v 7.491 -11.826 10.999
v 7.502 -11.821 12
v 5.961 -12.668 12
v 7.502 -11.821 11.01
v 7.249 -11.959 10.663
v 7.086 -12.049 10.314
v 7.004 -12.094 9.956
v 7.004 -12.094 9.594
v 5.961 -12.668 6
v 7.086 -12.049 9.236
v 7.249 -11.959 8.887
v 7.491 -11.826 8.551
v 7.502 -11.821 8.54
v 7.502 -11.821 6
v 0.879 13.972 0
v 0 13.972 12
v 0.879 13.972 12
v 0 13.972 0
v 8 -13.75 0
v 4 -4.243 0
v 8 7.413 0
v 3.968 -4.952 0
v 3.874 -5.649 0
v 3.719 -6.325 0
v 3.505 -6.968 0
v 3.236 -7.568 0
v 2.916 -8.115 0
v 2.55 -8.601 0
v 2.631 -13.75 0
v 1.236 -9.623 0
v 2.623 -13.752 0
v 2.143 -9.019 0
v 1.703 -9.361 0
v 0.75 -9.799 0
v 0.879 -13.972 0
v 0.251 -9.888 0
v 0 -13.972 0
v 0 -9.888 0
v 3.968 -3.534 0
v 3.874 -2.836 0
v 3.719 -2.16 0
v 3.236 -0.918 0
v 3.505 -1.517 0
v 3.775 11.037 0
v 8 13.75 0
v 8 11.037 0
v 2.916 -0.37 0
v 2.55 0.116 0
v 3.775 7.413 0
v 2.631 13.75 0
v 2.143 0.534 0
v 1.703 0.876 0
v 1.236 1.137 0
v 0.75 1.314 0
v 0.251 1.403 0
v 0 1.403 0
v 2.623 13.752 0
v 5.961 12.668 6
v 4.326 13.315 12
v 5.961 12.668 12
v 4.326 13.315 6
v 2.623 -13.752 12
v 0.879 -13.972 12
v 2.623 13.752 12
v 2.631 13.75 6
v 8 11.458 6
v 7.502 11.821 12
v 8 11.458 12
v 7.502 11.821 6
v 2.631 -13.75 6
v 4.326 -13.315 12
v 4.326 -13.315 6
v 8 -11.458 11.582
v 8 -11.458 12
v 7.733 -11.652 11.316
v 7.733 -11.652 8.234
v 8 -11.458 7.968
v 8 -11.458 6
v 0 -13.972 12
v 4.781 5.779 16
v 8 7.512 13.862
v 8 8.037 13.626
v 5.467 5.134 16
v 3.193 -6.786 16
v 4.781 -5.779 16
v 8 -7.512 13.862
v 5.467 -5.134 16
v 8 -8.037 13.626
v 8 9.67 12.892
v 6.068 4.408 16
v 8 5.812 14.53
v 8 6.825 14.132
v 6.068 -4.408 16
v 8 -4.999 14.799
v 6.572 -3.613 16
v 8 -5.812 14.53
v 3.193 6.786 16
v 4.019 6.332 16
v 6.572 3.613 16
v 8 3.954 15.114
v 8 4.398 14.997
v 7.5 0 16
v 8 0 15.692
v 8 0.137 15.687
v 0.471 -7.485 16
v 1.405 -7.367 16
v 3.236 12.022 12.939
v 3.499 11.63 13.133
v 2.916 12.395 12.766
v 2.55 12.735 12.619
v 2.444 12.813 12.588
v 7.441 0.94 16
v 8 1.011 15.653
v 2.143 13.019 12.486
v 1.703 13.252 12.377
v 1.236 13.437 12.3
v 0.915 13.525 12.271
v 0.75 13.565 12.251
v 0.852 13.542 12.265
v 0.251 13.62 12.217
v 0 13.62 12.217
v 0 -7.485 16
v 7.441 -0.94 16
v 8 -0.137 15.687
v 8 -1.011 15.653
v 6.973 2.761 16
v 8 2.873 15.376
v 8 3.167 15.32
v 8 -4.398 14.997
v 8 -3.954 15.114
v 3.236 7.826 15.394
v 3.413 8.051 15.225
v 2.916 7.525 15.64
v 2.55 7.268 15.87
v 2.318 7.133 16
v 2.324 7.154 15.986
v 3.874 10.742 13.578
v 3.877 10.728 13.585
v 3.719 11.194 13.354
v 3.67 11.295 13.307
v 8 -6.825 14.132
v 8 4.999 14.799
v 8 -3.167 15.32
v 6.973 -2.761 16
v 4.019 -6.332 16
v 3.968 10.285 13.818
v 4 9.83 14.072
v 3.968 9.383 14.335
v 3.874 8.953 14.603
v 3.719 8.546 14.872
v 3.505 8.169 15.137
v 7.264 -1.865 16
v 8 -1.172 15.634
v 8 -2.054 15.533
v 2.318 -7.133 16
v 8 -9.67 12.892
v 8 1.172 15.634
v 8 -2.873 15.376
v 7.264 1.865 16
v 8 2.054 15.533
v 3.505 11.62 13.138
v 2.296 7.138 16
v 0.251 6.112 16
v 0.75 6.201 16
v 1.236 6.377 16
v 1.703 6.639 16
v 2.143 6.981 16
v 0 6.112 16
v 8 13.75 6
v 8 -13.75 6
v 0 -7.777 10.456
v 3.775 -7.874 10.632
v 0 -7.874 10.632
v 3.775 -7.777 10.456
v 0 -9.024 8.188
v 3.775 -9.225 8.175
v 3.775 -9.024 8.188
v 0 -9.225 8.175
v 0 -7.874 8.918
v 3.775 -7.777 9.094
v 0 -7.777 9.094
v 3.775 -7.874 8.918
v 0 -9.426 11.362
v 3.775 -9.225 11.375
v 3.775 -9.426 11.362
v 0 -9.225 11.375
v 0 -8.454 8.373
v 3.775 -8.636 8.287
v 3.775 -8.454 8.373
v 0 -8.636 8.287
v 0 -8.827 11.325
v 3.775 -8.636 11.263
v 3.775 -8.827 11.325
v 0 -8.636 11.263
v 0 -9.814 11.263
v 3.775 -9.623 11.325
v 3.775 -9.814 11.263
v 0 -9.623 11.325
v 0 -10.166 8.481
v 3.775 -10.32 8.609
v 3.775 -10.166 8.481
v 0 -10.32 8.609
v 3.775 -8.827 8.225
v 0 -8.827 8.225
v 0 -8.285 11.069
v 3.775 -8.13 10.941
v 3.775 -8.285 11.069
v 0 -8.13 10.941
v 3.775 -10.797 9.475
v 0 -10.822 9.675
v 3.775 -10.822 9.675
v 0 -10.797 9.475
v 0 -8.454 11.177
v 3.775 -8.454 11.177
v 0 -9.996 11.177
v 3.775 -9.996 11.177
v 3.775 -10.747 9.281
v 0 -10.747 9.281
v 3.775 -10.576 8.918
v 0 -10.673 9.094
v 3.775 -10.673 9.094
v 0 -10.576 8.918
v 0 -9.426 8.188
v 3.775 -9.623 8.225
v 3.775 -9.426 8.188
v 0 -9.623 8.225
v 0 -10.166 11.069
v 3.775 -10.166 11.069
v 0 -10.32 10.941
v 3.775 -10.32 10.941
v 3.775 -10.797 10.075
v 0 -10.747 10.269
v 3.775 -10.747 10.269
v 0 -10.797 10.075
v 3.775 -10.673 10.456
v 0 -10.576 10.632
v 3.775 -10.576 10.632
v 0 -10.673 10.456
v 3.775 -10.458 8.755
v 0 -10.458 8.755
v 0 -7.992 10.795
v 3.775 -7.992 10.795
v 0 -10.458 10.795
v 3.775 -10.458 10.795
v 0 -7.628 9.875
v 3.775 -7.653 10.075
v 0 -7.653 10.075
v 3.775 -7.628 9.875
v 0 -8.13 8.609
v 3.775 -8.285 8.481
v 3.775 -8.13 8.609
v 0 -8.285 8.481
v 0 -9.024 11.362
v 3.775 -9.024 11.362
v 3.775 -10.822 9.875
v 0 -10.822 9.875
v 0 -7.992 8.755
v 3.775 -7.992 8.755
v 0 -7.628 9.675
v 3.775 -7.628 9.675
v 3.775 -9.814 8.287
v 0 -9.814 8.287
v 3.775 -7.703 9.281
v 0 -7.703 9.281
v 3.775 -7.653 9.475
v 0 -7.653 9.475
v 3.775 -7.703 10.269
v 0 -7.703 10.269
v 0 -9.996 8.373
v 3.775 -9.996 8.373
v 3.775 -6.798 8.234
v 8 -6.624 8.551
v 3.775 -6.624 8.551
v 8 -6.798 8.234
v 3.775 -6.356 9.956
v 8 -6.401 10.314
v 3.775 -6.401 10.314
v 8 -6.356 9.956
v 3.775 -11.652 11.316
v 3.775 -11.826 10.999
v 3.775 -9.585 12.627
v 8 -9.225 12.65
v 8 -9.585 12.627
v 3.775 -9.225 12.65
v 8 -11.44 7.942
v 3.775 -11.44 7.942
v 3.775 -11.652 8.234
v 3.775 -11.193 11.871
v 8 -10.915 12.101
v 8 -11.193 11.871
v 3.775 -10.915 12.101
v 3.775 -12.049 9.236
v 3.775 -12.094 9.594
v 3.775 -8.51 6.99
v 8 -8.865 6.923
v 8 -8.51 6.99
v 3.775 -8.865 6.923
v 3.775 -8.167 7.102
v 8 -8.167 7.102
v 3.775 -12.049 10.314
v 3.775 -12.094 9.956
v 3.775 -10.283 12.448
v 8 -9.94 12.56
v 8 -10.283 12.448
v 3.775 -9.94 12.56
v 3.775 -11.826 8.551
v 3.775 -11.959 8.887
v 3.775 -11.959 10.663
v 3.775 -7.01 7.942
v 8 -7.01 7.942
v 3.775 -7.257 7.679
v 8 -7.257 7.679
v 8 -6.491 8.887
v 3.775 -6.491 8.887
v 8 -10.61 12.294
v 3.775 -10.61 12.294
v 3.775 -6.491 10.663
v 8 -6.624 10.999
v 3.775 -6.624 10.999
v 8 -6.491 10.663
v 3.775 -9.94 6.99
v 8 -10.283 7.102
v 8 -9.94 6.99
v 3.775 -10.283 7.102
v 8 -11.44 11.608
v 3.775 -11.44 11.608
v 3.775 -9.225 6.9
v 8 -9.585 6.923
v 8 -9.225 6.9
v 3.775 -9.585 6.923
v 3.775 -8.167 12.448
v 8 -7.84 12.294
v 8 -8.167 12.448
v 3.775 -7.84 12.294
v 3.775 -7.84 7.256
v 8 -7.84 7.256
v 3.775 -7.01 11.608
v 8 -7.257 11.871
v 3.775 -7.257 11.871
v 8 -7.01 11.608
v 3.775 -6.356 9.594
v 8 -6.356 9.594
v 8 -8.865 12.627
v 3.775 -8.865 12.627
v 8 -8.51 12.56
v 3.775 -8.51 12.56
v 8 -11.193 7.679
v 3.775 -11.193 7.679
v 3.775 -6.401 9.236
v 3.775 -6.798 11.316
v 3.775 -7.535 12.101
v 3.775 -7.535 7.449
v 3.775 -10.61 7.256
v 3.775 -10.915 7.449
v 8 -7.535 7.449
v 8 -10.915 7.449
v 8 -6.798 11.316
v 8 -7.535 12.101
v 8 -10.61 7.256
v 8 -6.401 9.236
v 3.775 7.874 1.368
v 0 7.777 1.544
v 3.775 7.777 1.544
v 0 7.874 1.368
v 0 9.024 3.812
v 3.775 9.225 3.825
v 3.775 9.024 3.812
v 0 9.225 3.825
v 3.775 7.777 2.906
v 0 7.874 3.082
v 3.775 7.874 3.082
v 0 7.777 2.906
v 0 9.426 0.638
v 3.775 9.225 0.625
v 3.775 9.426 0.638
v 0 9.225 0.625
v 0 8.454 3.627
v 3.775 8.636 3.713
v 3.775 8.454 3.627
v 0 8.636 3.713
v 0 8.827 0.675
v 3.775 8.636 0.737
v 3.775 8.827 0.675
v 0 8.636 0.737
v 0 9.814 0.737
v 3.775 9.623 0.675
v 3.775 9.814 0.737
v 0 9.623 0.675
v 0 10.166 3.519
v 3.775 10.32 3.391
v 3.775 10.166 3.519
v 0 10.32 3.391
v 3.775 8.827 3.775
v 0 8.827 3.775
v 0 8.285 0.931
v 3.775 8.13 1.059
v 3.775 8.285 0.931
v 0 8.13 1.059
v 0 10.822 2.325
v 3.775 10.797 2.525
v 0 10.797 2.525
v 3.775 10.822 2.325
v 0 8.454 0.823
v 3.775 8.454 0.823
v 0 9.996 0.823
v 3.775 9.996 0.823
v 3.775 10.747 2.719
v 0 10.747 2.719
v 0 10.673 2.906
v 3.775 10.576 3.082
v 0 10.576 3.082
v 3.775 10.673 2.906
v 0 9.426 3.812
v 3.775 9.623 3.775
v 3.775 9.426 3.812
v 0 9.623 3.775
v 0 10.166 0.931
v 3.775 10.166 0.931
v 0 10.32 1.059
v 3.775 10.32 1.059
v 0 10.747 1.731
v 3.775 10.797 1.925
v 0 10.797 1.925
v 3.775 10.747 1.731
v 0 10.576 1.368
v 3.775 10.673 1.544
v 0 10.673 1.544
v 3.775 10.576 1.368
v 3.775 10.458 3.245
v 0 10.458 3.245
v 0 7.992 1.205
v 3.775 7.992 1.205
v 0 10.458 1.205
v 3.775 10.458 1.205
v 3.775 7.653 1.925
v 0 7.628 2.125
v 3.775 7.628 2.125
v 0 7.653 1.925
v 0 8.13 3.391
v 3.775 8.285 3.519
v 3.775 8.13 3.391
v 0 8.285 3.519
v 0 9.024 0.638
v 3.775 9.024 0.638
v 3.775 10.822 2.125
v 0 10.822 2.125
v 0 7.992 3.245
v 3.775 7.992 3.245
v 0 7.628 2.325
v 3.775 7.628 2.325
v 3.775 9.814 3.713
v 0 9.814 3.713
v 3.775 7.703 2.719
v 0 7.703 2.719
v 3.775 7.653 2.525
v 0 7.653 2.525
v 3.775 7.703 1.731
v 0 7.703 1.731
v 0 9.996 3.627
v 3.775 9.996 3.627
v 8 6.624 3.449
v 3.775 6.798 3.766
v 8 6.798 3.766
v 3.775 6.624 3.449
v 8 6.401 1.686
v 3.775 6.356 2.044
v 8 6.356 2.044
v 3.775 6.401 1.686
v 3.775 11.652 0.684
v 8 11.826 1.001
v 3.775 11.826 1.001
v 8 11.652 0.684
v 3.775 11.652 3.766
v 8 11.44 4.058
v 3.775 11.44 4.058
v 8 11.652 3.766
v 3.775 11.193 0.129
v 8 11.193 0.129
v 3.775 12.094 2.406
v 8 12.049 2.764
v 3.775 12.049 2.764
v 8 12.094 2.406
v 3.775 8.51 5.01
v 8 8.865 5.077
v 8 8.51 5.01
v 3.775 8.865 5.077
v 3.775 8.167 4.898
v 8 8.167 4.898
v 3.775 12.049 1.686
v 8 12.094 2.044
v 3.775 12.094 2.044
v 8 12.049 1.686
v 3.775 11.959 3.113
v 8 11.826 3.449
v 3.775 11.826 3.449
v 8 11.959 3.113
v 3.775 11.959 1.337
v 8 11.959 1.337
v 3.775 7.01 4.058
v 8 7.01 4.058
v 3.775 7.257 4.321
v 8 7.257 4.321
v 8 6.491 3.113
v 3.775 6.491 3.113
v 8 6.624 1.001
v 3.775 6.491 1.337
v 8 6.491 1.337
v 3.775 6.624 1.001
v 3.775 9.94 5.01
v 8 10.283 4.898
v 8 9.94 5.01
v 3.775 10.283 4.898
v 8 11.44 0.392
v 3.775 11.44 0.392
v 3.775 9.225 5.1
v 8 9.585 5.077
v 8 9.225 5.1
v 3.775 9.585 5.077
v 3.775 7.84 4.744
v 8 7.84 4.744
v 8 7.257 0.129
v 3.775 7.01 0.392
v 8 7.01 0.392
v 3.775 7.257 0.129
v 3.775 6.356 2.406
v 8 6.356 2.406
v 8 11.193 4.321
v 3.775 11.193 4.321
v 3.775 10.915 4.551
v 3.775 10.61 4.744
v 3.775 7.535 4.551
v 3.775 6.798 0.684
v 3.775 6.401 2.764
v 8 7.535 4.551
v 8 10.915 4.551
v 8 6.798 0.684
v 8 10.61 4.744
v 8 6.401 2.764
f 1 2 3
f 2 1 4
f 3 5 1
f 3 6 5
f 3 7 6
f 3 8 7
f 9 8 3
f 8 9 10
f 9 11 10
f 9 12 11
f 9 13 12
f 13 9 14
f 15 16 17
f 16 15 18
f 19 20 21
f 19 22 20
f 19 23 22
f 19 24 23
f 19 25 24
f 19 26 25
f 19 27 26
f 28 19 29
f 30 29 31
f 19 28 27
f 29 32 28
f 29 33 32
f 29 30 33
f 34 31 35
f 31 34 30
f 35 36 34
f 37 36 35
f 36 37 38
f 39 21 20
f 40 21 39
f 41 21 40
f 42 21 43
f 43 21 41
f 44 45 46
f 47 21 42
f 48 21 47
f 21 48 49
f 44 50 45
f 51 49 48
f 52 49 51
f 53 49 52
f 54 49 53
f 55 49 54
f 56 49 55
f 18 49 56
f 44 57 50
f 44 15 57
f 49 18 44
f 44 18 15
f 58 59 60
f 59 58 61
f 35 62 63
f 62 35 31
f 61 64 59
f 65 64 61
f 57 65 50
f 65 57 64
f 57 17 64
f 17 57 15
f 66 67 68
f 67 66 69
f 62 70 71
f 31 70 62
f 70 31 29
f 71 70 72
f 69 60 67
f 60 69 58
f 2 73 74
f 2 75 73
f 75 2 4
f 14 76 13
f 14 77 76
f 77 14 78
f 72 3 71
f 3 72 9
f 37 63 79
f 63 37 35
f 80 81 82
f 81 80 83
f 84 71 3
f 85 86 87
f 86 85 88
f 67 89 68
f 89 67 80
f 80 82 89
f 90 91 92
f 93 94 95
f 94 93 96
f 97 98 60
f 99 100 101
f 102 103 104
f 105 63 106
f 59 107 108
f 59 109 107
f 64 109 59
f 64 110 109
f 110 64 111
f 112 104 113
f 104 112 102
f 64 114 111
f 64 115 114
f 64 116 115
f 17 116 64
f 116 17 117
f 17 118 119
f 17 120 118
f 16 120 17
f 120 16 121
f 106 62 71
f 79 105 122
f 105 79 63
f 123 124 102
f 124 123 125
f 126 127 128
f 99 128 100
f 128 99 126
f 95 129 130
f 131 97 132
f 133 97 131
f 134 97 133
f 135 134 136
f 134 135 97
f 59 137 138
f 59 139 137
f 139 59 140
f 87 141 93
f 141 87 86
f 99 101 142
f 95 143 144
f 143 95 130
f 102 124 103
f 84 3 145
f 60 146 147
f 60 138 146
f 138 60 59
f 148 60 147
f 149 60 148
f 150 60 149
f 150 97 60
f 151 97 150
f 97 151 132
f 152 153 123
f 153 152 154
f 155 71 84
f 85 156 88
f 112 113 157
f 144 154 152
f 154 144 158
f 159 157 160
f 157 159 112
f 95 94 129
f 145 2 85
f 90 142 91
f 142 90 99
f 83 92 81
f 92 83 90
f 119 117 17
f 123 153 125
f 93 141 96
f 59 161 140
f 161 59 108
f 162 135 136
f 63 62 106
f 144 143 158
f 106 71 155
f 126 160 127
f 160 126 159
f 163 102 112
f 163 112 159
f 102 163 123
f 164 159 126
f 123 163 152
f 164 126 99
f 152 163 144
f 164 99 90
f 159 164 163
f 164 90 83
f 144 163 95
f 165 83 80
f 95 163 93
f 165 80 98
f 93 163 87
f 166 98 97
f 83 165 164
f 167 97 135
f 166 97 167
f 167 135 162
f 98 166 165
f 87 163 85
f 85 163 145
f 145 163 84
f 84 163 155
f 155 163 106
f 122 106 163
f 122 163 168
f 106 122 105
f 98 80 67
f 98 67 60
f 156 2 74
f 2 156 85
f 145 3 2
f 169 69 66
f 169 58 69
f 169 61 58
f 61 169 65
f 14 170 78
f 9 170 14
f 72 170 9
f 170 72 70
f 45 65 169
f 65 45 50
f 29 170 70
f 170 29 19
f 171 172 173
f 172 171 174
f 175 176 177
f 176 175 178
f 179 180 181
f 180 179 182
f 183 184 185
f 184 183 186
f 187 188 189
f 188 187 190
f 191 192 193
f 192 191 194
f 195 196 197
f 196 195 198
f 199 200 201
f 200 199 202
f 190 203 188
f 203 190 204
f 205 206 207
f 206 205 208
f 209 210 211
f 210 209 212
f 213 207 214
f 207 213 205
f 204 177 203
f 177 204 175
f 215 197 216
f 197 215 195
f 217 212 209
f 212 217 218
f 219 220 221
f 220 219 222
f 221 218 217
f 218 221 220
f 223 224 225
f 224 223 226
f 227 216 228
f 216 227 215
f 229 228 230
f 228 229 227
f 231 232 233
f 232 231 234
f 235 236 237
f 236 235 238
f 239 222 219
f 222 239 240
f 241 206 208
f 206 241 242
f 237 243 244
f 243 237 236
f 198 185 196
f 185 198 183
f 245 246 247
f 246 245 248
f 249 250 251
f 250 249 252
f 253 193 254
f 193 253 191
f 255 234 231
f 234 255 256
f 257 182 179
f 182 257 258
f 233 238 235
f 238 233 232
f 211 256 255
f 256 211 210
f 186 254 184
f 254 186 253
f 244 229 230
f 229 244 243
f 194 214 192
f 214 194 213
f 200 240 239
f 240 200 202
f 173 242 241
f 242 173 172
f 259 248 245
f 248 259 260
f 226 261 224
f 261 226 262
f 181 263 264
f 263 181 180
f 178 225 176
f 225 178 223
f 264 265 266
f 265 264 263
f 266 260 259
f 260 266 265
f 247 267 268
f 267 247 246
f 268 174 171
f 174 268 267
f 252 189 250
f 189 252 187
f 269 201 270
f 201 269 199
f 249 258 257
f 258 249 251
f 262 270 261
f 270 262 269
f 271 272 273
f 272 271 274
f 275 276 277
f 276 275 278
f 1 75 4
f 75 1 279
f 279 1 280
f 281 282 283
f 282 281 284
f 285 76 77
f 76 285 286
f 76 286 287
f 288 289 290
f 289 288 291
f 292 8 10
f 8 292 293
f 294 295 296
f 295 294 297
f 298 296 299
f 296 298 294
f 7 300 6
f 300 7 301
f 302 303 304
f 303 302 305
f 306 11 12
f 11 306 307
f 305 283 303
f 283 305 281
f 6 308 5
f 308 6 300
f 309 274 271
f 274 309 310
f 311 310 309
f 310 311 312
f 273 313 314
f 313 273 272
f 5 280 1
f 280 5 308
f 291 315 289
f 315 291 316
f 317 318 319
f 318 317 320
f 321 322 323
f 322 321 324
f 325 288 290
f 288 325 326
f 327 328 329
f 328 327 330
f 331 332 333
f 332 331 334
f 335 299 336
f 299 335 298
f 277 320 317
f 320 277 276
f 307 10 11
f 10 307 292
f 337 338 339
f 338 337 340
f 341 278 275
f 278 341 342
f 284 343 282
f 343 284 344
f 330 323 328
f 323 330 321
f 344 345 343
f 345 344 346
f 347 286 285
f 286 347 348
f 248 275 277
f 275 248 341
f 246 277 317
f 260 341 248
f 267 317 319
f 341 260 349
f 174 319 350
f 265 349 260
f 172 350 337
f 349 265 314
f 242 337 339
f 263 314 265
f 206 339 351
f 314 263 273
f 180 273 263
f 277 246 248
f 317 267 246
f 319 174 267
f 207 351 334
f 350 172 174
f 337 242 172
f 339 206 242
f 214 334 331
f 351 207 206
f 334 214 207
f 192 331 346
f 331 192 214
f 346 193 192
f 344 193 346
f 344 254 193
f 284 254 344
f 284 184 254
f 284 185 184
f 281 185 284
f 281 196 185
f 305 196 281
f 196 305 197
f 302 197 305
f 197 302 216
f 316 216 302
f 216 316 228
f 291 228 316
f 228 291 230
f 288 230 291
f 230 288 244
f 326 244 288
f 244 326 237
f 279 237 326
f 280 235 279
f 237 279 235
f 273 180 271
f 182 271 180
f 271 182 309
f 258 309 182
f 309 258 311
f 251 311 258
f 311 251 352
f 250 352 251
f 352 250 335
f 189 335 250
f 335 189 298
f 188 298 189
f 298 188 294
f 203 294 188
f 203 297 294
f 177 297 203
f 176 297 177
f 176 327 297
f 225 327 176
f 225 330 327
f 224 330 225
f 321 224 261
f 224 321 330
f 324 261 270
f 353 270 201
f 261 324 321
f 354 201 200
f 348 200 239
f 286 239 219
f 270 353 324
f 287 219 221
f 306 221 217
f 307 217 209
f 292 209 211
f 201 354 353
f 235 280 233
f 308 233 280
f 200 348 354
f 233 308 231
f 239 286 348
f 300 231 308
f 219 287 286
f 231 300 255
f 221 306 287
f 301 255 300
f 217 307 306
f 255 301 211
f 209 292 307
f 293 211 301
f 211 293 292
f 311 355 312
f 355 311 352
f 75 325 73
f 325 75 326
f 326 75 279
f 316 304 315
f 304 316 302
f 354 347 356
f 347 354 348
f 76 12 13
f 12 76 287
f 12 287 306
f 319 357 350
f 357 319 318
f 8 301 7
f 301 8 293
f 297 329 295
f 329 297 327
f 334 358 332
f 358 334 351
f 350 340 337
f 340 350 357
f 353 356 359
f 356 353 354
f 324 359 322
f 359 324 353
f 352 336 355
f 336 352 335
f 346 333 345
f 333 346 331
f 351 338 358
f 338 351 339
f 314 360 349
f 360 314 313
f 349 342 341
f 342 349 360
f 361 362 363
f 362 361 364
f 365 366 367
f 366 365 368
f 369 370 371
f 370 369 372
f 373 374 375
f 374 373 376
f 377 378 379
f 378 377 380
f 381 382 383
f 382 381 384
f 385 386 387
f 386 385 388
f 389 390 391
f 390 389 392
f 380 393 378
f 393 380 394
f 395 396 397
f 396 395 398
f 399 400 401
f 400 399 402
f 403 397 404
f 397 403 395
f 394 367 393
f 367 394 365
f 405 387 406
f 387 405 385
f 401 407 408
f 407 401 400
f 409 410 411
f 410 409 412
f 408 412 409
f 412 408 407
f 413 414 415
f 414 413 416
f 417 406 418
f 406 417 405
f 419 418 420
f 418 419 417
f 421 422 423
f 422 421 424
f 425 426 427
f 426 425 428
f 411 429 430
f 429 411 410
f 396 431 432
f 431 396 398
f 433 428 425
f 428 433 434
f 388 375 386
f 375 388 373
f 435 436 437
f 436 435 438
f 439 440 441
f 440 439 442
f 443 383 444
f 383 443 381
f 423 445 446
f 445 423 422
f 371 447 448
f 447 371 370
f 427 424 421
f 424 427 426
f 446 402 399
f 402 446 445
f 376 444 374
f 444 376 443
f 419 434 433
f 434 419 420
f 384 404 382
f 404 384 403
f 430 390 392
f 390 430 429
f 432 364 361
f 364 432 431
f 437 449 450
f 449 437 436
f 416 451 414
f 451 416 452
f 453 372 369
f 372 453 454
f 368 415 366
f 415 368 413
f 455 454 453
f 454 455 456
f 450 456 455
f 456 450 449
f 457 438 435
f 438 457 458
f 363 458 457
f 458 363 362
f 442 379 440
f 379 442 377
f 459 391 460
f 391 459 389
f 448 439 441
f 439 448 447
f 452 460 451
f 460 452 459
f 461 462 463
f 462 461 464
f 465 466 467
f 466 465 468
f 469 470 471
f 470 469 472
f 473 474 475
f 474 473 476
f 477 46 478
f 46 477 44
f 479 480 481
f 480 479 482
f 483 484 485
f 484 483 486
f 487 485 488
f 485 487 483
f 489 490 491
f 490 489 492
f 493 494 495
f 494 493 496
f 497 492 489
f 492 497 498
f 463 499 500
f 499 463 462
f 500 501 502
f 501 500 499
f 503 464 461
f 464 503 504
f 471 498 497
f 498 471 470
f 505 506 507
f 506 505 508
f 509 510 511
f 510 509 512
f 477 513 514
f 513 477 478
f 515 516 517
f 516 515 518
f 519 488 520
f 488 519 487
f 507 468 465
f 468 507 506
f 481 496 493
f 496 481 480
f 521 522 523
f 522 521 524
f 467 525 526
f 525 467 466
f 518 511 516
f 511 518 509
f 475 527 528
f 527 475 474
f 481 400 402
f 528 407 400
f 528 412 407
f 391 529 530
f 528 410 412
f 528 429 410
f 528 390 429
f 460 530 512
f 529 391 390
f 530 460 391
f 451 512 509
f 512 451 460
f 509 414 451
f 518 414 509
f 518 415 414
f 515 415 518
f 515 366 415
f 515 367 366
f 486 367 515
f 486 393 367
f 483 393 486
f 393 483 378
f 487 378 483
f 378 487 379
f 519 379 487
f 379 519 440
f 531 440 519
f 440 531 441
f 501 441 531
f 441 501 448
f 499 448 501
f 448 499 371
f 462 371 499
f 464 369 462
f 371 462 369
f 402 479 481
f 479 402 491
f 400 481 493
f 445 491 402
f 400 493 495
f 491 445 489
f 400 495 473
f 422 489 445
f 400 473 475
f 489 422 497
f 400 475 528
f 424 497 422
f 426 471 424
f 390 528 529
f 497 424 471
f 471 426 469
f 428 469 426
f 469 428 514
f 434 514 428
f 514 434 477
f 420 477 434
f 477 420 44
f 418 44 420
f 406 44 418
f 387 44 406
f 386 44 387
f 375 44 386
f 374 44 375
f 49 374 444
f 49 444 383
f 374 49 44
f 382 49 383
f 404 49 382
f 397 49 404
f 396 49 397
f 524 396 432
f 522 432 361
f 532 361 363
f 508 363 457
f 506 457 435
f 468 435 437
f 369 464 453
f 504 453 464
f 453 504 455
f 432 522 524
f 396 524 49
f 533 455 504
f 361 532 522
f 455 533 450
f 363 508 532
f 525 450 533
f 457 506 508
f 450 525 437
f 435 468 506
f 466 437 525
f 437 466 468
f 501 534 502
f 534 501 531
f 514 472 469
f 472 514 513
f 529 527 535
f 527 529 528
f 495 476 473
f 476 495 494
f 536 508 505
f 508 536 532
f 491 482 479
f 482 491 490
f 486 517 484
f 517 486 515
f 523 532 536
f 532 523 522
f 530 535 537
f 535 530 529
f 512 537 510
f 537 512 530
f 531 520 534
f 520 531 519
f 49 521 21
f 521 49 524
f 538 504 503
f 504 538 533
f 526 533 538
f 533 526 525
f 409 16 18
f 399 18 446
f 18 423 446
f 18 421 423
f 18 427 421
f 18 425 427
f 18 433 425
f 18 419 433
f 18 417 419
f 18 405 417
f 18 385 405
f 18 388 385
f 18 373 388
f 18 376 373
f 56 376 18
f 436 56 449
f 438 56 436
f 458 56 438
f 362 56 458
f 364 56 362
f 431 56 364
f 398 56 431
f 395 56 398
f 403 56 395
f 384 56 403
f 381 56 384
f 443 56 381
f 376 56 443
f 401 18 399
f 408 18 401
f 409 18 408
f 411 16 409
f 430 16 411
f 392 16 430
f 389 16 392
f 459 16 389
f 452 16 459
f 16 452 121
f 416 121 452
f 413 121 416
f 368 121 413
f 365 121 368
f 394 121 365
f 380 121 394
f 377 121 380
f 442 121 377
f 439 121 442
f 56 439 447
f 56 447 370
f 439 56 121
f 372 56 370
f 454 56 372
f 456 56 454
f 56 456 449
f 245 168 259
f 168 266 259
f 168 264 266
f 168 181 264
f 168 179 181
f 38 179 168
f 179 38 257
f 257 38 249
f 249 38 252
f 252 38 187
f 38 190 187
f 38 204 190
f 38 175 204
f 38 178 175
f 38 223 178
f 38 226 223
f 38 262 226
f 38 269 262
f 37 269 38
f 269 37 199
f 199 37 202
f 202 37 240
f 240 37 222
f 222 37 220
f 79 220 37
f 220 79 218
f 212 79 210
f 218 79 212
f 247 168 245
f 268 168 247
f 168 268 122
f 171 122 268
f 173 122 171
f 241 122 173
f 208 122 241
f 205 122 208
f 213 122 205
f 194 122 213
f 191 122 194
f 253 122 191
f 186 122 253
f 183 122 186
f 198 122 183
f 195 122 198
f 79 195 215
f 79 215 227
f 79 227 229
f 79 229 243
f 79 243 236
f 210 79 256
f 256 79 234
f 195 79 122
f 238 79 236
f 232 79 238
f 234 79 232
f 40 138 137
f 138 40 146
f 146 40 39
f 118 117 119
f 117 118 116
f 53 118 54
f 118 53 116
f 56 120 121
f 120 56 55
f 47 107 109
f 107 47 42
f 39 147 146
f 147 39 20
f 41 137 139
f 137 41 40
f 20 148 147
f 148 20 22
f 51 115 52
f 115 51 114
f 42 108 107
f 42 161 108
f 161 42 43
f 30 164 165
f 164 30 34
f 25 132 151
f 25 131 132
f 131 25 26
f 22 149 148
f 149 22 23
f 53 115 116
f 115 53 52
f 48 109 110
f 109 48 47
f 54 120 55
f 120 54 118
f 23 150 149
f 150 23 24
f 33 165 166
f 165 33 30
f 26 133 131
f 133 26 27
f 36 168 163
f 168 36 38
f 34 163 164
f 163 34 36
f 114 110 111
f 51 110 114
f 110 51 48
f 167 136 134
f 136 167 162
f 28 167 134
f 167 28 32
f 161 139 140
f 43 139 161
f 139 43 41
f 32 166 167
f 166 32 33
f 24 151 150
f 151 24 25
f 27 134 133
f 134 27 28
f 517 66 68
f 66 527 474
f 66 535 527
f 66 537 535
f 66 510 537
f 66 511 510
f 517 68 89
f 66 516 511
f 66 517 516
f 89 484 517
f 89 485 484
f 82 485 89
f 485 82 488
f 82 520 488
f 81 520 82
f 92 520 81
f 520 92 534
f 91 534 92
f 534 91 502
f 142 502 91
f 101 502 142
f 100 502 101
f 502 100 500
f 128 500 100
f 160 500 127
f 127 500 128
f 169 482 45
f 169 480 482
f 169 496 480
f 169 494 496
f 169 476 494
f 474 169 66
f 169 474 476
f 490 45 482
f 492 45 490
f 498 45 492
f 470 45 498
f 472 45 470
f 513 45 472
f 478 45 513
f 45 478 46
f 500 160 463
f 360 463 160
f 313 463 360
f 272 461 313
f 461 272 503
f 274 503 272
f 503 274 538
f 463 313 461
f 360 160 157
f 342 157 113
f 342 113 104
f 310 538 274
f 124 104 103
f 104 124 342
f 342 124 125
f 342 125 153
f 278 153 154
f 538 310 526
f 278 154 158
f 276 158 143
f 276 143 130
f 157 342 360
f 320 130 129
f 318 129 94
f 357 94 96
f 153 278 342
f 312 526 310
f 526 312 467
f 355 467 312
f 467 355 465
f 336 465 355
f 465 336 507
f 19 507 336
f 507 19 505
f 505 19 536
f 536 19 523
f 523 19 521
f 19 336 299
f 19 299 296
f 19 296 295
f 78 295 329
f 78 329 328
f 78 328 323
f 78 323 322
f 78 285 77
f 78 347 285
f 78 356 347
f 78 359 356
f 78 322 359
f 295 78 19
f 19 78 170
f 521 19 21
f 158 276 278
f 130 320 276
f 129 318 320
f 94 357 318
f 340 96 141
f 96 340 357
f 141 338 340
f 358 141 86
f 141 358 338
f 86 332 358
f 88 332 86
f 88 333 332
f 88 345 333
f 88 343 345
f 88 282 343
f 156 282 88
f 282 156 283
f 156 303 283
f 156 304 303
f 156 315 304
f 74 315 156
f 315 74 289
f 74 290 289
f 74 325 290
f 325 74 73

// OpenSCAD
// file: ../settings/dimensions.scad
// Defualt Quality
$fn = 50;

// PCB Dimensions - mm
pcb_l = 109.67;
pcb_w = 84.30;
pcb_t = 1.6;

hole_dia = 3.2;
hole_x_spacing = 101.85;
hole_y_spacing = 76.10;

// PCB Component Locations - mm from center
usb_x = (-pcb_l/2) + 24.11;
usb_y = (-pcb_w/2);

uSD_x = (-pcb_l/2) + 42.46;
uSD_y = (-pcb_w/2) - 0.71;

// TMC2130 Dimensions - mm
tmc_l = 20.32;
tmc_w = 15.24;
tmc_t = 1.6;
tmc_offset_from_pcb = 11.05;


// Global Enclosure Settings
pcb_mnt_pattern = [[0,0],[hole_x_spacing,0],[0,hole_y_spacing],[hole_x_spacing,hole_y_spacing]];
x_clearance = 25;
y_clearance = 15;
m3_clearance_dia = 3.2;
wall_height = 38;
// main file
include <../settings/dimensions.scad>

module m3_bolt_hole() {
    translate([-(5.55/2),(28/2)-(5.55/2)-1,(-10/2)+(5.55/2)+((9/2)+10-2.5)]) {
        rotate([0,270,0])cylinder(h=25,d=m3_clearance_dia, center=true);
        rotate([0,270,0])cylinder(h=10, d=5.75);
    }
}
module y_clamp() {
    mirror([1,0,0]) {
        difference() {
            //main body
            union() {
                cylinder(h=12, d=28);
                translate([0,0,12])cylinder(h=4, d1=28, d2=15);
                translate([-10,-27.5/2,0])cube([10,27.5,6]);
            }

            // Split
            translate([0,-20,-20])cube([40,40,40]);

            // 8mm cable hole
            rotate([315,0,0])translate([0,-3,-20])cylinder(h=40, d=8);

            // bolt holes
            mirror([0,1,0])translate([-1,-1,0])m3_bolt_hole();
            translate([-1,-1,12])mirror([0,0,1])m3_bolt_hole();

            // cut of some of the back
            translate([-10-8,-20,-1])cube([10,40,20]);
        }
    }
}

y_clamp();
